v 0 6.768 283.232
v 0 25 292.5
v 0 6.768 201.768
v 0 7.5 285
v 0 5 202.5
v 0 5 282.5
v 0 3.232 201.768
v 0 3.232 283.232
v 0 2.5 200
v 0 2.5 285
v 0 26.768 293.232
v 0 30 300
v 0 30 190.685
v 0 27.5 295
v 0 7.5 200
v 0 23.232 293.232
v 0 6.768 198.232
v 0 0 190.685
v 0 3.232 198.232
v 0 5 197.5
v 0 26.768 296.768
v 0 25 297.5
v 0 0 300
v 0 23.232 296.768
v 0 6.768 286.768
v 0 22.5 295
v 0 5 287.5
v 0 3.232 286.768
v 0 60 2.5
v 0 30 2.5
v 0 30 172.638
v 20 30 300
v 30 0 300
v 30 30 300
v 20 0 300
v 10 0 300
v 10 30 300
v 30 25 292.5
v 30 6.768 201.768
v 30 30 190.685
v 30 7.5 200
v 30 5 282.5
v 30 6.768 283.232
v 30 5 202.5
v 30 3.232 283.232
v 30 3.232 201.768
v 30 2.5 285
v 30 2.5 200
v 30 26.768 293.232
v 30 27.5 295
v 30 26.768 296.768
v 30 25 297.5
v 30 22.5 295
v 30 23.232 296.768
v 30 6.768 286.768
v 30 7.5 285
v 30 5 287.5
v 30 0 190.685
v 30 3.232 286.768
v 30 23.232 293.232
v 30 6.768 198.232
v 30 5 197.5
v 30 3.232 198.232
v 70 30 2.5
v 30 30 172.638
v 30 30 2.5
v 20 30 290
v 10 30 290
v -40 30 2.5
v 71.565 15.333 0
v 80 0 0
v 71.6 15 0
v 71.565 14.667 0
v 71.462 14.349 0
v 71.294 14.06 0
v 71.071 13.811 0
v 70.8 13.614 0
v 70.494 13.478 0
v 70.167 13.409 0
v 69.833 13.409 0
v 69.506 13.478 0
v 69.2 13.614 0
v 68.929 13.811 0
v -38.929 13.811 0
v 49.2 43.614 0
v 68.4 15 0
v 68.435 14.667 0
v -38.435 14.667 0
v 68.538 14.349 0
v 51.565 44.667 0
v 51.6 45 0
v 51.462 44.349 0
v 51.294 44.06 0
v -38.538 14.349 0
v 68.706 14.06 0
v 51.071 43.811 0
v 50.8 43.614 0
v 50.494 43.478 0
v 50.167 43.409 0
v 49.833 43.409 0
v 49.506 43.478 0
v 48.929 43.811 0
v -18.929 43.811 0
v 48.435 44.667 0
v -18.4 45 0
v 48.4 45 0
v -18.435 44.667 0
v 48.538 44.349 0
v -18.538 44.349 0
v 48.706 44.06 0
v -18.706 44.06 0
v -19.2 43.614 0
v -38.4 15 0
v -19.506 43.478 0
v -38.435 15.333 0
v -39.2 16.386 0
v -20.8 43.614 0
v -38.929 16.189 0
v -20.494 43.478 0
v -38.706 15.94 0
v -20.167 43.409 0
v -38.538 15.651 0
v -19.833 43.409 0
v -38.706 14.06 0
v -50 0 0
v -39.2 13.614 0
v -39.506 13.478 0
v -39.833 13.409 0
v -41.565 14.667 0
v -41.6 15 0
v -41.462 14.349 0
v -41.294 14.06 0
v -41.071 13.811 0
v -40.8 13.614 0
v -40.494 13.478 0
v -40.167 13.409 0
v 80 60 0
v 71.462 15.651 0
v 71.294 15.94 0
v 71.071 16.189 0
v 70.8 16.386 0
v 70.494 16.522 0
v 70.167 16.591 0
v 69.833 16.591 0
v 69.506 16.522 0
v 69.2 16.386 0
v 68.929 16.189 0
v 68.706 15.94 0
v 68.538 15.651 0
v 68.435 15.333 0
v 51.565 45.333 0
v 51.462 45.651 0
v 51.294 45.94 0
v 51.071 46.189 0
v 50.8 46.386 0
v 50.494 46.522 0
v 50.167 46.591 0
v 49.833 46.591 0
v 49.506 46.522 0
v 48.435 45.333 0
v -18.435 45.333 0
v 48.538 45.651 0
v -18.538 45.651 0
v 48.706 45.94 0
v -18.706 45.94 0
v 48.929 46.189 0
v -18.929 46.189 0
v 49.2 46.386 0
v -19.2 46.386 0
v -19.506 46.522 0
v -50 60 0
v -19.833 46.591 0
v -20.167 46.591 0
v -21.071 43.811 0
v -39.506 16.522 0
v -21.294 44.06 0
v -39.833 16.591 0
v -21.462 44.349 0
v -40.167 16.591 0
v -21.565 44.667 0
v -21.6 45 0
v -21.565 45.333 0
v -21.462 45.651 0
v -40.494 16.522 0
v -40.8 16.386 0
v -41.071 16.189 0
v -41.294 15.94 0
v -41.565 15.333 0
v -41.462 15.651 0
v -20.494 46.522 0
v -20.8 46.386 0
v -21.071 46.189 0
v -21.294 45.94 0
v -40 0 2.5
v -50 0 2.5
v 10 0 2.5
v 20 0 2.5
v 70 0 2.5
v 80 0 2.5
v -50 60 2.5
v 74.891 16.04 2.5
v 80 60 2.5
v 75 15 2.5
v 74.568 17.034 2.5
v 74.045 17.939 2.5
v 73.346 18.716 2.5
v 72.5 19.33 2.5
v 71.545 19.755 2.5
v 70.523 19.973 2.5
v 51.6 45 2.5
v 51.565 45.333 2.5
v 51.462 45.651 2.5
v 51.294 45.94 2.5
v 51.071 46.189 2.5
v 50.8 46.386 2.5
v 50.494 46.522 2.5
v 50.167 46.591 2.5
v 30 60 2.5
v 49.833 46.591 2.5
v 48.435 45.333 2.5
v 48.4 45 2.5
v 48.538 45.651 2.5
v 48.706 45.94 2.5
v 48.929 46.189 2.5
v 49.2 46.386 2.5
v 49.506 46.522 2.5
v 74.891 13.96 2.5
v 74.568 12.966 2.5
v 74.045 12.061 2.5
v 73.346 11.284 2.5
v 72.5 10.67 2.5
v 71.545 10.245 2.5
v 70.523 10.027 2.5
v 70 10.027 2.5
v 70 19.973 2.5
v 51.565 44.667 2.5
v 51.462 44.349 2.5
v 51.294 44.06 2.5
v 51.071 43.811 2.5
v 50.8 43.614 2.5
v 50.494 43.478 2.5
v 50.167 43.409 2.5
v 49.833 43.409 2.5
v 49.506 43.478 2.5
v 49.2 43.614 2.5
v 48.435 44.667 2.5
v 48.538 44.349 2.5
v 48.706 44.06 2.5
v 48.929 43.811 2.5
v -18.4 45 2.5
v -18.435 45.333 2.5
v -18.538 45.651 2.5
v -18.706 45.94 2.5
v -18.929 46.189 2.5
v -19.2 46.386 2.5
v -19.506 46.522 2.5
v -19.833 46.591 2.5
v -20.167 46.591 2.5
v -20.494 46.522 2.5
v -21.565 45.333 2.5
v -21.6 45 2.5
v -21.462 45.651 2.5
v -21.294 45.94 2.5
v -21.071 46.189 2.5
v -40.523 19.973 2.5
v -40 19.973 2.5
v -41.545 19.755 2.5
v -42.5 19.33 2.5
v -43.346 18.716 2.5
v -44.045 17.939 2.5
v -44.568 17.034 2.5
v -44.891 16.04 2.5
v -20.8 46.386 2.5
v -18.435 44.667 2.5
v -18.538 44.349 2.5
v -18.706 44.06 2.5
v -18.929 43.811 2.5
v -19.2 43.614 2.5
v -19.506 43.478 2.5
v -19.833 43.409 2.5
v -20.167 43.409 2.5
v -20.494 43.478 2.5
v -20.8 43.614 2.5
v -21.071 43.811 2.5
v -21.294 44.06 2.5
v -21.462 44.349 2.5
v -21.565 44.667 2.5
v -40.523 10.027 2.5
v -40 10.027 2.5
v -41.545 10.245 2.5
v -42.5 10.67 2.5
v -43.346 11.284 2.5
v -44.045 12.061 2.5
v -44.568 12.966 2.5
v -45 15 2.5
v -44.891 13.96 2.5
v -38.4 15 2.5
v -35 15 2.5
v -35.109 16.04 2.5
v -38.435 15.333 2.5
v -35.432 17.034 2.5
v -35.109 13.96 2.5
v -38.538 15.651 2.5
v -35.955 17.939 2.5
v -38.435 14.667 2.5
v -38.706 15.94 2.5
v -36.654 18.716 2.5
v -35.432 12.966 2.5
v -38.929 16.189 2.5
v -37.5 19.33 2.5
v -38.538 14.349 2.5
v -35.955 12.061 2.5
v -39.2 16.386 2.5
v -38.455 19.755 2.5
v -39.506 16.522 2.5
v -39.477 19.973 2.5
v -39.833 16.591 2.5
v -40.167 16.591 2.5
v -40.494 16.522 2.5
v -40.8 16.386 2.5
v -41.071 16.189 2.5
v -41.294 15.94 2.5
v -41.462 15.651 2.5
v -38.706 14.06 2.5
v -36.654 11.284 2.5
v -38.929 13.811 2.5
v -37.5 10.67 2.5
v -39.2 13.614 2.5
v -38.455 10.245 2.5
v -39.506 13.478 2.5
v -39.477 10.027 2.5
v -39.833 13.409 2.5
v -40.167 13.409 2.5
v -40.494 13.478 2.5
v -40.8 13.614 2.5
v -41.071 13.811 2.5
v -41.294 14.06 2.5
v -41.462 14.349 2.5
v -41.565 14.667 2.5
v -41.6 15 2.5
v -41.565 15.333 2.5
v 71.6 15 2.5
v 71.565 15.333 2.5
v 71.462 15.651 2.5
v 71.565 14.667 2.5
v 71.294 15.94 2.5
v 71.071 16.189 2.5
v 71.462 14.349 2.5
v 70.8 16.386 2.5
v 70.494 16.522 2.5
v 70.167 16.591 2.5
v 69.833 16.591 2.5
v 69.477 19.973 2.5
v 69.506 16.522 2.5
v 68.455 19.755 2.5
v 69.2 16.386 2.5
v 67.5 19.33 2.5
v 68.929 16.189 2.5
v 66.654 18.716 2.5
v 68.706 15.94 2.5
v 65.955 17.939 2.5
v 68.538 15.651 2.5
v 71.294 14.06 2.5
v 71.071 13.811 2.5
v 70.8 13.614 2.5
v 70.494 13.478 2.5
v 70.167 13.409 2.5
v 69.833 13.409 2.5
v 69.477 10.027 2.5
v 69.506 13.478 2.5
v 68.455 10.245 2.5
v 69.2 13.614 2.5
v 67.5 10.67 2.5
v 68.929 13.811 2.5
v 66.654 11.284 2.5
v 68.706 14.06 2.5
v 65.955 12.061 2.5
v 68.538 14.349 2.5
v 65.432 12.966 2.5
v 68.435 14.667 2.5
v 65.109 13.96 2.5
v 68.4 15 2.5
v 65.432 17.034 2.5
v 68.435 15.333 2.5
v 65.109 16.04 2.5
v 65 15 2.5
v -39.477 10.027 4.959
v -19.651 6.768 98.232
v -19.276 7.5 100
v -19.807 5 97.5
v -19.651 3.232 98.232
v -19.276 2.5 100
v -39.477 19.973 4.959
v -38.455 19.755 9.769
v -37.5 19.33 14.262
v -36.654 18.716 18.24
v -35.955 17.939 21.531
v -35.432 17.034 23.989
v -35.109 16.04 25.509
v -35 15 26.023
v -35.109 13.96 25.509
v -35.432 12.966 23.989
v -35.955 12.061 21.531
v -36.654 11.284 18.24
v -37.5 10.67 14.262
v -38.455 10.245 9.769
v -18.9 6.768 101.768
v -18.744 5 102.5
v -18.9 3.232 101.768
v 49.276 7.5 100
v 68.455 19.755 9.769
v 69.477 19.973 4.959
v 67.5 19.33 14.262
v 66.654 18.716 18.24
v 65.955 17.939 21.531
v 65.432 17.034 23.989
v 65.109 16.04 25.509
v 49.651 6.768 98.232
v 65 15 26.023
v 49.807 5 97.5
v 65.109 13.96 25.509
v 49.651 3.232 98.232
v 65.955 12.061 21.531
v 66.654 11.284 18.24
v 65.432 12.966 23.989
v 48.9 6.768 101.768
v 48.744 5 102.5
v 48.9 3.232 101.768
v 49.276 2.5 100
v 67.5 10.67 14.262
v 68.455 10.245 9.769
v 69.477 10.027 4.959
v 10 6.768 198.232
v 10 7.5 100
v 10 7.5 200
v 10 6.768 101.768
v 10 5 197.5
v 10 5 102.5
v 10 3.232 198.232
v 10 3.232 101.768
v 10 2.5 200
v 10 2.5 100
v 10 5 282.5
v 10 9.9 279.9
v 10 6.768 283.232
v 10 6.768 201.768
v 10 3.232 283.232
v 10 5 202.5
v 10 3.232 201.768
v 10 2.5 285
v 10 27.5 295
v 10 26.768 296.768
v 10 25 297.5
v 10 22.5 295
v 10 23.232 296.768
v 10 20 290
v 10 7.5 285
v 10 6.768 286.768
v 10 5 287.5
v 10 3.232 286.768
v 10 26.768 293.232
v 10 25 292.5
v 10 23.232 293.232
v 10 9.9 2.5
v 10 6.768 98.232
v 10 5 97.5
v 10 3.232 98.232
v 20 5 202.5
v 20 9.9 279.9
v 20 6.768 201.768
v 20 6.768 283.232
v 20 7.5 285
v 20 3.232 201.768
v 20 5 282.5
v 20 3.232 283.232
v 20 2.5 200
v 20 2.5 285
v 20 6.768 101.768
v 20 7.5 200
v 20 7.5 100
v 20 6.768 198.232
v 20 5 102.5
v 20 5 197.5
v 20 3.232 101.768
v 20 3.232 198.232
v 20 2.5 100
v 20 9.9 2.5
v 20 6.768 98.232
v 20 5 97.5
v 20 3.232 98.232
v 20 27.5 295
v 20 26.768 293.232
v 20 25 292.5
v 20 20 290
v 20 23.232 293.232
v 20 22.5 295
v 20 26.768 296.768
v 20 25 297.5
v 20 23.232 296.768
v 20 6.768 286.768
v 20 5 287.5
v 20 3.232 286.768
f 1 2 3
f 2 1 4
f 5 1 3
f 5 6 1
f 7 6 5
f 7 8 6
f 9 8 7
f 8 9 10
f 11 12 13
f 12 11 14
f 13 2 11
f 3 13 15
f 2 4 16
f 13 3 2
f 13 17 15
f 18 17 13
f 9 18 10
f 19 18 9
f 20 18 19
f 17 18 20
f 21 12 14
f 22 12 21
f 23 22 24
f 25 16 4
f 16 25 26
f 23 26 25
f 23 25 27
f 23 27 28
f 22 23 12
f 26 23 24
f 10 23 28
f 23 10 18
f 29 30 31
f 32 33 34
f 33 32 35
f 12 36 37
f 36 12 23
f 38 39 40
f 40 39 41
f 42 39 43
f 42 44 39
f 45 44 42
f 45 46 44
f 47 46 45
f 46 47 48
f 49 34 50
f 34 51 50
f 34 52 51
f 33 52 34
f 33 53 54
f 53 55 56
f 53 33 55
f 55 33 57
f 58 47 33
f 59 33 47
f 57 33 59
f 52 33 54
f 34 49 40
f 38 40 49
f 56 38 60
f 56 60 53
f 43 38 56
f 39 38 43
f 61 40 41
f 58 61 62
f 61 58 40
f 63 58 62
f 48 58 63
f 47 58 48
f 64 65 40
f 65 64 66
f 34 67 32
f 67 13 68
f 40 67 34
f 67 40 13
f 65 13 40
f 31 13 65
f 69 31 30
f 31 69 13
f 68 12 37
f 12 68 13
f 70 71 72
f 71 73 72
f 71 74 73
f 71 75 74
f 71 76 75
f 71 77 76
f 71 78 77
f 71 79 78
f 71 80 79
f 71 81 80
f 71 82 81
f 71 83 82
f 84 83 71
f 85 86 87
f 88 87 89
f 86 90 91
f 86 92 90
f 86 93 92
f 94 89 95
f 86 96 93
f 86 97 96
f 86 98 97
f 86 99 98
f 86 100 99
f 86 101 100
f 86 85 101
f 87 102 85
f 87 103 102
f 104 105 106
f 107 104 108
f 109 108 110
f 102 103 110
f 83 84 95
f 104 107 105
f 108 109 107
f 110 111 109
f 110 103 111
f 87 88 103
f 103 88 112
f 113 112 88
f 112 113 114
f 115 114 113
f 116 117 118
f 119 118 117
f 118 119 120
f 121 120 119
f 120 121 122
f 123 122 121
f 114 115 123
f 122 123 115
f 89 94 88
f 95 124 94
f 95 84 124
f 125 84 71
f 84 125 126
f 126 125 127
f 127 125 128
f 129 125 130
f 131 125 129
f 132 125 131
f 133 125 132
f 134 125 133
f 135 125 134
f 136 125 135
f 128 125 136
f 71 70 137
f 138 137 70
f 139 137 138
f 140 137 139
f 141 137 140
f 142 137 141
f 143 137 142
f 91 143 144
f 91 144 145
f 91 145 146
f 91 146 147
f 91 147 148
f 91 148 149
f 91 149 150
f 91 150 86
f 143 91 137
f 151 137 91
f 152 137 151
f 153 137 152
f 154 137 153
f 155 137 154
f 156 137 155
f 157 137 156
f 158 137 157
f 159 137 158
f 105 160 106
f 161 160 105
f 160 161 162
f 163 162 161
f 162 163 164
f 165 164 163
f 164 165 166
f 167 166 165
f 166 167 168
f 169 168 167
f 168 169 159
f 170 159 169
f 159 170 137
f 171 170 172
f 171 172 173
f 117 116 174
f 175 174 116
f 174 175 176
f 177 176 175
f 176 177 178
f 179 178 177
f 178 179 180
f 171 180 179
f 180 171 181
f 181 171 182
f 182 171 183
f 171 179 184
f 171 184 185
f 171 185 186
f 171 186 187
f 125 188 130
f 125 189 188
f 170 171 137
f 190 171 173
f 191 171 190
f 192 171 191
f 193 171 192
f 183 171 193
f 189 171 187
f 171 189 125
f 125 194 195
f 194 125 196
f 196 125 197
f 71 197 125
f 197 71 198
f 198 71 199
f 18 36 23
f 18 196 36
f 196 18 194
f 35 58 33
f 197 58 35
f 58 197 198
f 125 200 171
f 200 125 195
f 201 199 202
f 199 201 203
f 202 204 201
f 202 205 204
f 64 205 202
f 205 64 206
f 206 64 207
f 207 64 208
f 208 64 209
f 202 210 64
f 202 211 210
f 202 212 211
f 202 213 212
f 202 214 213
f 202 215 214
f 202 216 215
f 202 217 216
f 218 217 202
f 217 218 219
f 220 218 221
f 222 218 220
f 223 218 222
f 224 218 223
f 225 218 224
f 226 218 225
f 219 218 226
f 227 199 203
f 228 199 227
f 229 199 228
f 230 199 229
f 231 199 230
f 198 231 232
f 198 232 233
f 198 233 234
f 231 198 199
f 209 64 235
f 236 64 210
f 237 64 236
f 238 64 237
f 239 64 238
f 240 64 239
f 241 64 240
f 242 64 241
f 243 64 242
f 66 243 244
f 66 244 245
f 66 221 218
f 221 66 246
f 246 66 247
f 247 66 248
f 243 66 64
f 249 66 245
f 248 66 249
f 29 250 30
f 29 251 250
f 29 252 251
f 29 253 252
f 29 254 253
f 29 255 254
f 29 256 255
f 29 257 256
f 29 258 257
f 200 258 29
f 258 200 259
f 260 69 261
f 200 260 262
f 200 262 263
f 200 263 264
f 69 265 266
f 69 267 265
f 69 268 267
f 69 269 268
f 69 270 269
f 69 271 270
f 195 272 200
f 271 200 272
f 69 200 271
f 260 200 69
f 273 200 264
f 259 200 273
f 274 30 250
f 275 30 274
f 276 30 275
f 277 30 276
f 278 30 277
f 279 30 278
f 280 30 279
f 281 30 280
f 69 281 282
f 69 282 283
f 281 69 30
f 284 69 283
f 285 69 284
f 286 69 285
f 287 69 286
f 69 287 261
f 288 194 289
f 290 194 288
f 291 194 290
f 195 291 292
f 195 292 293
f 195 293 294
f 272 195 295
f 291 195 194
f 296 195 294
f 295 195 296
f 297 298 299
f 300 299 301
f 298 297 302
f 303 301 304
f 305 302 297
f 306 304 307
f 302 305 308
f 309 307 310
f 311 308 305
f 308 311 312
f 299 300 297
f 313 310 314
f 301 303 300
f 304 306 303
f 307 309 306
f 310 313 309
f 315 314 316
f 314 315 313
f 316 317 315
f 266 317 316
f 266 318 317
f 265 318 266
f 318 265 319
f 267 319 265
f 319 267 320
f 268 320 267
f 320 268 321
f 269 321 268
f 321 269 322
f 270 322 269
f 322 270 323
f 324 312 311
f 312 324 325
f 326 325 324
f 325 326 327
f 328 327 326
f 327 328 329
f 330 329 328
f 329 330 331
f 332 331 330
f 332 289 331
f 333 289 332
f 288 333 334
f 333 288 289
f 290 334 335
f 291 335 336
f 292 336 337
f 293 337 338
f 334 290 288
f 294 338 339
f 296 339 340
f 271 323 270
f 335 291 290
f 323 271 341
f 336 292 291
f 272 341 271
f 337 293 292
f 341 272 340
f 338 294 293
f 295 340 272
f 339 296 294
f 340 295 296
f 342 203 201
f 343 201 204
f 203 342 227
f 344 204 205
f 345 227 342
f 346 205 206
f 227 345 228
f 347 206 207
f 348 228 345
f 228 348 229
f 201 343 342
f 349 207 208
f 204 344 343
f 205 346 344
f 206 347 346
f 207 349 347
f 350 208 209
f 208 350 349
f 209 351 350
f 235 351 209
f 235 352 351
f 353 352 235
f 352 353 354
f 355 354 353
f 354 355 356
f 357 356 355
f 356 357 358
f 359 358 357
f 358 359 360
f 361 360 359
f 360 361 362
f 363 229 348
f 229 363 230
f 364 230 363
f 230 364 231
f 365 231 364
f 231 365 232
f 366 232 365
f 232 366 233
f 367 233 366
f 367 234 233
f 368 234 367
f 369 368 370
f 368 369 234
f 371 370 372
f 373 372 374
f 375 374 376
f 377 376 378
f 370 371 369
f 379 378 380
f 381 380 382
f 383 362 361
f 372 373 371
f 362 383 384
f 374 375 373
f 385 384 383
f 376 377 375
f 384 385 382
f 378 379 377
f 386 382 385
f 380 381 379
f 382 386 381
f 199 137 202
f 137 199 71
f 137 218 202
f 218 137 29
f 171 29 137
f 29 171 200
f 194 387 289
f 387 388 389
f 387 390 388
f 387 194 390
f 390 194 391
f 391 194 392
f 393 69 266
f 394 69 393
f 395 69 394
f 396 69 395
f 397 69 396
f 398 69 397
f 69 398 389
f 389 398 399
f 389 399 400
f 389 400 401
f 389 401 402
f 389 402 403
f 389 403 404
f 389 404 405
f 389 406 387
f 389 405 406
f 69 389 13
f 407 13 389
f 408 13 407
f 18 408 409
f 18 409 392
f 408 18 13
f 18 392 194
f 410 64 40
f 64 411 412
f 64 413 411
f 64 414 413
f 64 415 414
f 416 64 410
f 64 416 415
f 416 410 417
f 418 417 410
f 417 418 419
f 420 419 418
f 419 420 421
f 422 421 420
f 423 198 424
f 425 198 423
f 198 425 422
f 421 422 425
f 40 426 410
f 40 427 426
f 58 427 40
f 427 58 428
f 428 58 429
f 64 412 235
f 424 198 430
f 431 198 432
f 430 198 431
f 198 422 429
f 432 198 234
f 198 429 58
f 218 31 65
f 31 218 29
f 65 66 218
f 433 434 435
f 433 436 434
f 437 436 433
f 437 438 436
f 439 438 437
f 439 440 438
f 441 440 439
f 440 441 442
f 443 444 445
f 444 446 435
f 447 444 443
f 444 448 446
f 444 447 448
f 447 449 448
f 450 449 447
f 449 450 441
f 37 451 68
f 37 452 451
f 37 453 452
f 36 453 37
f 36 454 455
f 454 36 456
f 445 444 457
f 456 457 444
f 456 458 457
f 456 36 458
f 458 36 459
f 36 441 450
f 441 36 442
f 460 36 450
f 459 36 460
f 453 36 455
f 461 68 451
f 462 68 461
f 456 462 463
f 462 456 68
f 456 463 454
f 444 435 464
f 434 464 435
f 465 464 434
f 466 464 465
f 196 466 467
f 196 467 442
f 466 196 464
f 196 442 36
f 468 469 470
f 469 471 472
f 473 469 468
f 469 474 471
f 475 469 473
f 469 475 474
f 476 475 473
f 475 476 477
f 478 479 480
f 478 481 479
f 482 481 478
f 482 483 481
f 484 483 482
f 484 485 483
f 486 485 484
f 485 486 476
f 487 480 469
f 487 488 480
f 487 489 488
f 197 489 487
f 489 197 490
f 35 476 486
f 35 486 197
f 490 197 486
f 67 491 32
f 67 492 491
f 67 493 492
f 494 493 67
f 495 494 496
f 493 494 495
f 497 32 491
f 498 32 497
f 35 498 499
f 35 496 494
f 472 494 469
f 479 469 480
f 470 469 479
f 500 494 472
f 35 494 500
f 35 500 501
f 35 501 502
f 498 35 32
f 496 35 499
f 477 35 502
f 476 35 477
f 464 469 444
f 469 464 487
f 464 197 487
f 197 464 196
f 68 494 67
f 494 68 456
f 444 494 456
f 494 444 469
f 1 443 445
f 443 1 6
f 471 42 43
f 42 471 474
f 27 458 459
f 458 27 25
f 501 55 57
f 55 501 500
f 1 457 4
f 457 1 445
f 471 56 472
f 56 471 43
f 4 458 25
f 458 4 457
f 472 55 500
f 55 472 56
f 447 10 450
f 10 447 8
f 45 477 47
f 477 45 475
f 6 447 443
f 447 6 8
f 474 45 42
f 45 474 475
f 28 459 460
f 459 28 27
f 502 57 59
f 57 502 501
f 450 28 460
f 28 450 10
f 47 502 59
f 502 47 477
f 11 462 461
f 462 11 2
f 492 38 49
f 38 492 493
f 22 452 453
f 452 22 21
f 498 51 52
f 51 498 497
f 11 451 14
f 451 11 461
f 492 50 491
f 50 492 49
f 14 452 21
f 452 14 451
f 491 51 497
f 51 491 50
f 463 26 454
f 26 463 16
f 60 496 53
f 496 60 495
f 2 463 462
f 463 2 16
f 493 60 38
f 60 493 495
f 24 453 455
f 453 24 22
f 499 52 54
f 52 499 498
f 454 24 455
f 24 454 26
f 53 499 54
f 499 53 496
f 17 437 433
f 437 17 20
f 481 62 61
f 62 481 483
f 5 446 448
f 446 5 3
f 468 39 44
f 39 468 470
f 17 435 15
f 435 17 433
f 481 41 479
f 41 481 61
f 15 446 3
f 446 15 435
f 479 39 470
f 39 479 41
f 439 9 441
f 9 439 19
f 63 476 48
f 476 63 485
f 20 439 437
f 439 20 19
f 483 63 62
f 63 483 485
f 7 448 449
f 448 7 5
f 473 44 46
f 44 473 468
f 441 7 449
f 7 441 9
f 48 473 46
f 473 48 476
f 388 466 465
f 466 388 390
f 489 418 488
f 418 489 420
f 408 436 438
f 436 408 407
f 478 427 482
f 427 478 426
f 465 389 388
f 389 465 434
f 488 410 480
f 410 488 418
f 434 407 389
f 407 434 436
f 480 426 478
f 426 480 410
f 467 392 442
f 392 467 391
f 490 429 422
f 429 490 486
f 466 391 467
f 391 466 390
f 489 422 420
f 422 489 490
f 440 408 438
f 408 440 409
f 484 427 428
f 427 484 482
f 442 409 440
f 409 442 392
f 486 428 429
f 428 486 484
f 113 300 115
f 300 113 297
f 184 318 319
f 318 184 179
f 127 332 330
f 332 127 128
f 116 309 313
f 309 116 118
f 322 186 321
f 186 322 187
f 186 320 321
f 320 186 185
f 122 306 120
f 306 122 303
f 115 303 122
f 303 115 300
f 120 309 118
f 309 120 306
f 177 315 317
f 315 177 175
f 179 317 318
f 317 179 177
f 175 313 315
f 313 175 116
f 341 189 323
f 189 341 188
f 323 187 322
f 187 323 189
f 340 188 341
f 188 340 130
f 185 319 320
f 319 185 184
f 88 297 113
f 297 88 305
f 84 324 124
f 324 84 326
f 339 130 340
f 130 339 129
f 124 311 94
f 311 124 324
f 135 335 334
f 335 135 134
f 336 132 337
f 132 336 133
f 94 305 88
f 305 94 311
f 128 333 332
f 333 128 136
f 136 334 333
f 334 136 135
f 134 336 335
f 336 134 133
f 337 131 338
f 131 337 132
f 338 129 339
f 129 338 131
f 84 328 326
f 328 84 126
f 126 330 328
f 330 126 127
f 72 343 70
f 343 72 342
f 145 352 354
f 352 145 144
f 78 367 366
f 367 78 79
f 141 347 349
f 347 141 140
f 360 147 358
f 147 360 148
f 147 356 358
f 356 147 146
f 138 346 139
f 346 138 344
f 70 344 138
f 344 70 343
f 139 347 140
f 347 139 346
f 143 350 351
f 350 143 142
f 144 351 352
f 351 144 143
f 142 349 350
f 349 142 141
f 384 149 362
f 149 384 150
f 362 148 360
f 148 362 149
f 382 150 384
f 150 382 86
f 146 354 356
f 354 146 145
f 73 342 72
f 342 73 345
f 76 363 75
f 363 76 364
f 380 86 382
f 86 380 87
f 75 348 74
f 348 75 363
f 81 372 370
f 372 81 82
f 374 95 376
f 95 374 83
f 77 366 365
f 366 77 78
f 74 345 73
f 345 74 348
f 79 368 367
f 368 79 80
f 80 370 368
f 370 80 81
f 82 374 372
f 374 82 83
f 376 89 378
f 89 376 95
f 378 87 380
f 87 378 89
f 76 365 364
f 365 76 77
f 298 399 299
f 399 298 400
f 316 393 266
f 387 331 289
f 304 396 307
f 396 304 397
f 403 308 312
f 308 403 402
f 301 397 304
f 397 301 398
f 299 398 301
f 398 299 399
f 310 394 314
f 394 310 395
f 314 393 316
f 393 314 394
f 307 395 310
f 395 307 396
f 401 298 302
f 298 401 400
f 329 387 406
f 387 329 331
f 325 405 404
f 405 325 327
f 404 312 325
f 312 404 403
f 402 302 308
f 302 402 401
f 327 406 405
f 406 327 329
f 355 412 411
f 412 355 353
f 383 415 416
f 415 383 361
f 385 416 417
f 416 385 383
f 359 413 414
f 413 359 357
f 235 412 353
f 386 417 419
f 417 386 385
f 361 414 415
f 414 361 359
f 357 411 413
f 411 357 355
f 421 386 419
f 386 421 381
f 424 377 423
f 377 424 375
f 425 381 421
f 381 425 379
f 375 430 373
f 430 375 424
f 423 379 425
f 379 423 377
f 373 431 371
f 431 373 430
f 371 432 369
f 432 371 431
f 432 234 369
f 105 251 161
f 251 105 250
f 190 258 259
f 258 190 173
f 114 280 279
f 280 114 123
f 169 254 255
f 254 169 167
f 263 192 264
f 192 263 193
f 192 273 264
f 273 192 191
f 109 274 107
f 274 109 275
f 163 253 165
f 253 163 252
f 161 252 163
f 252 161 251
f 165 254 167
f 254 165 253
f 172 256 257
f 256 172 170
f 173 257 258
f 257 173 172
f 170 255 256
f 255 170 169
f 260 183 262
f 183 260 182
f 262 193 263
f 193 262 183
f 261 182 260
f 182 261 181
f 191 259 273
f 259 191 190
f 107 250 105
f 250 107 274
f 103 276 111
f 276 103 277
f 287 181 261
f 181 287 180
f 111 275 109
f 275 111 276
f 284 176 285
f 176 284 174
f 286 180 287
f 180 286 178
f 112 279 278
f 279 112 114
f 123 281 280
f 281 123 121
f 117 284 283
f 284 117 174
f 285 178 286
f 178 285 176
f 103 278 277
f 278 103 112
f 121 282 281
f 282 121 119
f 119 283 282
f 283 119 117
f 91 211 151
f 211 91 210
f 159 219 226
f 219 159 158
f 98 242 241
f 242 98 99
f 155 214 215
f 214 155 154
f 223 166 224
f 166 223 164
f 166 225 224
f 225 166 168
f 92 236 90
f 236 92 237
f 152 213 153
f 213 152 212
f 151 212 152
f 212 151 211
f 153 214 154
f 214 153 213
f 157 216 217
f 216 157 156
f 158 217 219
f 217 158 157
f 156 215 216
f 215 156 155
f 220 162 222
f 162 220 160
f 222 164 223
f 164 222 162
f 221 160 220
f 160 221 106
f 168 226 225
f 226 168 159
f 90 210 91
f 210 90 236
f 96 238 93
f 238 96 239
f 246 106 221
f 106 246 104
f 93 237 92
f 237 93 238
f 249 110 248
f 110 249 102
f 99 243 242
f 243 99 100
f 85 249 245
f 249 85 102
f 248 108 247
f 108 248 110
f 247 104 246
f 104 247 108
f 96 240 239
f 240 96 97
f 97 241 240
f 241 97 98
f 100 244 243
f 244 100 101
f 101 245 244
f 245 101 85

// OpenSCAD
height=300;
plate_thick = 2.5;
screw_d=3.2;

cable_tower();


module cable_tower(){
    difference(){
        union(){
            cube([30,30,height]);
            translate([-10,0,0]) cube([50,30,50]);
            translate([-50,0,0]) cube([130,60,plate_thick]);
            
            translate([-40,0,plate_thick]) rotate([0,12,0]) cube([30,30,195]);
            translate([40+30,30,plate_thick]) rotate([0,12,180]) cube([30,30,195]);
            translate([0,60,plate_thick]) rotate([0,10,270]) cube([30,30,175]);
                      
        }
    
    // Bottom cut
    translate([-50,-10,-20]) cube([130,80,20]);
        
    // Cable channel
    translate([10,-0.1,plate_thick]) cube([10,10,height]);
    translate([10,0,height-10]) cube([10,31,11]);
    translate([10,0,height-30]) rotate([45,0,0]) cube([10,31,11]);
        
    // Ziptie holes
    translate([-10,5,height-15]) rotate([0,90,0]) cylinder(h=50,d=5);
    translate([-10,25,height-5]) rotate([0,90,0]) cylinder(h=50,d=5);
    translate([-10,5,height-100]) rotate([0,90,0]) cylinder(h=50,d=5);
    translate([-100,5,height-200]) rotate([0,90,0]) cylinder(h=200,d=5);
    
    // Screwholes bottom
    translate([-40,15,-0.1]) cylinder(h=5, d=screw_d, $fn=30);
    translate([70,15,-0.1]) cylinder(h=5, d=screw_d, $fn=30);
    translate([-40,15,plate_thick]) cylinder(h=25, d=10, $fn=30);
    translate([70,15,plate_thick]) cylinder(h=25, d=10, $fn=30);
    
    translate([-20,45,-0.1]) cylinder(h=5, d=screw_d, $fn=30);
    translate([50,45,-0.1]) cylinder(h=5, d=screw_d, $fn=30);
    
        
    
    }  
}
